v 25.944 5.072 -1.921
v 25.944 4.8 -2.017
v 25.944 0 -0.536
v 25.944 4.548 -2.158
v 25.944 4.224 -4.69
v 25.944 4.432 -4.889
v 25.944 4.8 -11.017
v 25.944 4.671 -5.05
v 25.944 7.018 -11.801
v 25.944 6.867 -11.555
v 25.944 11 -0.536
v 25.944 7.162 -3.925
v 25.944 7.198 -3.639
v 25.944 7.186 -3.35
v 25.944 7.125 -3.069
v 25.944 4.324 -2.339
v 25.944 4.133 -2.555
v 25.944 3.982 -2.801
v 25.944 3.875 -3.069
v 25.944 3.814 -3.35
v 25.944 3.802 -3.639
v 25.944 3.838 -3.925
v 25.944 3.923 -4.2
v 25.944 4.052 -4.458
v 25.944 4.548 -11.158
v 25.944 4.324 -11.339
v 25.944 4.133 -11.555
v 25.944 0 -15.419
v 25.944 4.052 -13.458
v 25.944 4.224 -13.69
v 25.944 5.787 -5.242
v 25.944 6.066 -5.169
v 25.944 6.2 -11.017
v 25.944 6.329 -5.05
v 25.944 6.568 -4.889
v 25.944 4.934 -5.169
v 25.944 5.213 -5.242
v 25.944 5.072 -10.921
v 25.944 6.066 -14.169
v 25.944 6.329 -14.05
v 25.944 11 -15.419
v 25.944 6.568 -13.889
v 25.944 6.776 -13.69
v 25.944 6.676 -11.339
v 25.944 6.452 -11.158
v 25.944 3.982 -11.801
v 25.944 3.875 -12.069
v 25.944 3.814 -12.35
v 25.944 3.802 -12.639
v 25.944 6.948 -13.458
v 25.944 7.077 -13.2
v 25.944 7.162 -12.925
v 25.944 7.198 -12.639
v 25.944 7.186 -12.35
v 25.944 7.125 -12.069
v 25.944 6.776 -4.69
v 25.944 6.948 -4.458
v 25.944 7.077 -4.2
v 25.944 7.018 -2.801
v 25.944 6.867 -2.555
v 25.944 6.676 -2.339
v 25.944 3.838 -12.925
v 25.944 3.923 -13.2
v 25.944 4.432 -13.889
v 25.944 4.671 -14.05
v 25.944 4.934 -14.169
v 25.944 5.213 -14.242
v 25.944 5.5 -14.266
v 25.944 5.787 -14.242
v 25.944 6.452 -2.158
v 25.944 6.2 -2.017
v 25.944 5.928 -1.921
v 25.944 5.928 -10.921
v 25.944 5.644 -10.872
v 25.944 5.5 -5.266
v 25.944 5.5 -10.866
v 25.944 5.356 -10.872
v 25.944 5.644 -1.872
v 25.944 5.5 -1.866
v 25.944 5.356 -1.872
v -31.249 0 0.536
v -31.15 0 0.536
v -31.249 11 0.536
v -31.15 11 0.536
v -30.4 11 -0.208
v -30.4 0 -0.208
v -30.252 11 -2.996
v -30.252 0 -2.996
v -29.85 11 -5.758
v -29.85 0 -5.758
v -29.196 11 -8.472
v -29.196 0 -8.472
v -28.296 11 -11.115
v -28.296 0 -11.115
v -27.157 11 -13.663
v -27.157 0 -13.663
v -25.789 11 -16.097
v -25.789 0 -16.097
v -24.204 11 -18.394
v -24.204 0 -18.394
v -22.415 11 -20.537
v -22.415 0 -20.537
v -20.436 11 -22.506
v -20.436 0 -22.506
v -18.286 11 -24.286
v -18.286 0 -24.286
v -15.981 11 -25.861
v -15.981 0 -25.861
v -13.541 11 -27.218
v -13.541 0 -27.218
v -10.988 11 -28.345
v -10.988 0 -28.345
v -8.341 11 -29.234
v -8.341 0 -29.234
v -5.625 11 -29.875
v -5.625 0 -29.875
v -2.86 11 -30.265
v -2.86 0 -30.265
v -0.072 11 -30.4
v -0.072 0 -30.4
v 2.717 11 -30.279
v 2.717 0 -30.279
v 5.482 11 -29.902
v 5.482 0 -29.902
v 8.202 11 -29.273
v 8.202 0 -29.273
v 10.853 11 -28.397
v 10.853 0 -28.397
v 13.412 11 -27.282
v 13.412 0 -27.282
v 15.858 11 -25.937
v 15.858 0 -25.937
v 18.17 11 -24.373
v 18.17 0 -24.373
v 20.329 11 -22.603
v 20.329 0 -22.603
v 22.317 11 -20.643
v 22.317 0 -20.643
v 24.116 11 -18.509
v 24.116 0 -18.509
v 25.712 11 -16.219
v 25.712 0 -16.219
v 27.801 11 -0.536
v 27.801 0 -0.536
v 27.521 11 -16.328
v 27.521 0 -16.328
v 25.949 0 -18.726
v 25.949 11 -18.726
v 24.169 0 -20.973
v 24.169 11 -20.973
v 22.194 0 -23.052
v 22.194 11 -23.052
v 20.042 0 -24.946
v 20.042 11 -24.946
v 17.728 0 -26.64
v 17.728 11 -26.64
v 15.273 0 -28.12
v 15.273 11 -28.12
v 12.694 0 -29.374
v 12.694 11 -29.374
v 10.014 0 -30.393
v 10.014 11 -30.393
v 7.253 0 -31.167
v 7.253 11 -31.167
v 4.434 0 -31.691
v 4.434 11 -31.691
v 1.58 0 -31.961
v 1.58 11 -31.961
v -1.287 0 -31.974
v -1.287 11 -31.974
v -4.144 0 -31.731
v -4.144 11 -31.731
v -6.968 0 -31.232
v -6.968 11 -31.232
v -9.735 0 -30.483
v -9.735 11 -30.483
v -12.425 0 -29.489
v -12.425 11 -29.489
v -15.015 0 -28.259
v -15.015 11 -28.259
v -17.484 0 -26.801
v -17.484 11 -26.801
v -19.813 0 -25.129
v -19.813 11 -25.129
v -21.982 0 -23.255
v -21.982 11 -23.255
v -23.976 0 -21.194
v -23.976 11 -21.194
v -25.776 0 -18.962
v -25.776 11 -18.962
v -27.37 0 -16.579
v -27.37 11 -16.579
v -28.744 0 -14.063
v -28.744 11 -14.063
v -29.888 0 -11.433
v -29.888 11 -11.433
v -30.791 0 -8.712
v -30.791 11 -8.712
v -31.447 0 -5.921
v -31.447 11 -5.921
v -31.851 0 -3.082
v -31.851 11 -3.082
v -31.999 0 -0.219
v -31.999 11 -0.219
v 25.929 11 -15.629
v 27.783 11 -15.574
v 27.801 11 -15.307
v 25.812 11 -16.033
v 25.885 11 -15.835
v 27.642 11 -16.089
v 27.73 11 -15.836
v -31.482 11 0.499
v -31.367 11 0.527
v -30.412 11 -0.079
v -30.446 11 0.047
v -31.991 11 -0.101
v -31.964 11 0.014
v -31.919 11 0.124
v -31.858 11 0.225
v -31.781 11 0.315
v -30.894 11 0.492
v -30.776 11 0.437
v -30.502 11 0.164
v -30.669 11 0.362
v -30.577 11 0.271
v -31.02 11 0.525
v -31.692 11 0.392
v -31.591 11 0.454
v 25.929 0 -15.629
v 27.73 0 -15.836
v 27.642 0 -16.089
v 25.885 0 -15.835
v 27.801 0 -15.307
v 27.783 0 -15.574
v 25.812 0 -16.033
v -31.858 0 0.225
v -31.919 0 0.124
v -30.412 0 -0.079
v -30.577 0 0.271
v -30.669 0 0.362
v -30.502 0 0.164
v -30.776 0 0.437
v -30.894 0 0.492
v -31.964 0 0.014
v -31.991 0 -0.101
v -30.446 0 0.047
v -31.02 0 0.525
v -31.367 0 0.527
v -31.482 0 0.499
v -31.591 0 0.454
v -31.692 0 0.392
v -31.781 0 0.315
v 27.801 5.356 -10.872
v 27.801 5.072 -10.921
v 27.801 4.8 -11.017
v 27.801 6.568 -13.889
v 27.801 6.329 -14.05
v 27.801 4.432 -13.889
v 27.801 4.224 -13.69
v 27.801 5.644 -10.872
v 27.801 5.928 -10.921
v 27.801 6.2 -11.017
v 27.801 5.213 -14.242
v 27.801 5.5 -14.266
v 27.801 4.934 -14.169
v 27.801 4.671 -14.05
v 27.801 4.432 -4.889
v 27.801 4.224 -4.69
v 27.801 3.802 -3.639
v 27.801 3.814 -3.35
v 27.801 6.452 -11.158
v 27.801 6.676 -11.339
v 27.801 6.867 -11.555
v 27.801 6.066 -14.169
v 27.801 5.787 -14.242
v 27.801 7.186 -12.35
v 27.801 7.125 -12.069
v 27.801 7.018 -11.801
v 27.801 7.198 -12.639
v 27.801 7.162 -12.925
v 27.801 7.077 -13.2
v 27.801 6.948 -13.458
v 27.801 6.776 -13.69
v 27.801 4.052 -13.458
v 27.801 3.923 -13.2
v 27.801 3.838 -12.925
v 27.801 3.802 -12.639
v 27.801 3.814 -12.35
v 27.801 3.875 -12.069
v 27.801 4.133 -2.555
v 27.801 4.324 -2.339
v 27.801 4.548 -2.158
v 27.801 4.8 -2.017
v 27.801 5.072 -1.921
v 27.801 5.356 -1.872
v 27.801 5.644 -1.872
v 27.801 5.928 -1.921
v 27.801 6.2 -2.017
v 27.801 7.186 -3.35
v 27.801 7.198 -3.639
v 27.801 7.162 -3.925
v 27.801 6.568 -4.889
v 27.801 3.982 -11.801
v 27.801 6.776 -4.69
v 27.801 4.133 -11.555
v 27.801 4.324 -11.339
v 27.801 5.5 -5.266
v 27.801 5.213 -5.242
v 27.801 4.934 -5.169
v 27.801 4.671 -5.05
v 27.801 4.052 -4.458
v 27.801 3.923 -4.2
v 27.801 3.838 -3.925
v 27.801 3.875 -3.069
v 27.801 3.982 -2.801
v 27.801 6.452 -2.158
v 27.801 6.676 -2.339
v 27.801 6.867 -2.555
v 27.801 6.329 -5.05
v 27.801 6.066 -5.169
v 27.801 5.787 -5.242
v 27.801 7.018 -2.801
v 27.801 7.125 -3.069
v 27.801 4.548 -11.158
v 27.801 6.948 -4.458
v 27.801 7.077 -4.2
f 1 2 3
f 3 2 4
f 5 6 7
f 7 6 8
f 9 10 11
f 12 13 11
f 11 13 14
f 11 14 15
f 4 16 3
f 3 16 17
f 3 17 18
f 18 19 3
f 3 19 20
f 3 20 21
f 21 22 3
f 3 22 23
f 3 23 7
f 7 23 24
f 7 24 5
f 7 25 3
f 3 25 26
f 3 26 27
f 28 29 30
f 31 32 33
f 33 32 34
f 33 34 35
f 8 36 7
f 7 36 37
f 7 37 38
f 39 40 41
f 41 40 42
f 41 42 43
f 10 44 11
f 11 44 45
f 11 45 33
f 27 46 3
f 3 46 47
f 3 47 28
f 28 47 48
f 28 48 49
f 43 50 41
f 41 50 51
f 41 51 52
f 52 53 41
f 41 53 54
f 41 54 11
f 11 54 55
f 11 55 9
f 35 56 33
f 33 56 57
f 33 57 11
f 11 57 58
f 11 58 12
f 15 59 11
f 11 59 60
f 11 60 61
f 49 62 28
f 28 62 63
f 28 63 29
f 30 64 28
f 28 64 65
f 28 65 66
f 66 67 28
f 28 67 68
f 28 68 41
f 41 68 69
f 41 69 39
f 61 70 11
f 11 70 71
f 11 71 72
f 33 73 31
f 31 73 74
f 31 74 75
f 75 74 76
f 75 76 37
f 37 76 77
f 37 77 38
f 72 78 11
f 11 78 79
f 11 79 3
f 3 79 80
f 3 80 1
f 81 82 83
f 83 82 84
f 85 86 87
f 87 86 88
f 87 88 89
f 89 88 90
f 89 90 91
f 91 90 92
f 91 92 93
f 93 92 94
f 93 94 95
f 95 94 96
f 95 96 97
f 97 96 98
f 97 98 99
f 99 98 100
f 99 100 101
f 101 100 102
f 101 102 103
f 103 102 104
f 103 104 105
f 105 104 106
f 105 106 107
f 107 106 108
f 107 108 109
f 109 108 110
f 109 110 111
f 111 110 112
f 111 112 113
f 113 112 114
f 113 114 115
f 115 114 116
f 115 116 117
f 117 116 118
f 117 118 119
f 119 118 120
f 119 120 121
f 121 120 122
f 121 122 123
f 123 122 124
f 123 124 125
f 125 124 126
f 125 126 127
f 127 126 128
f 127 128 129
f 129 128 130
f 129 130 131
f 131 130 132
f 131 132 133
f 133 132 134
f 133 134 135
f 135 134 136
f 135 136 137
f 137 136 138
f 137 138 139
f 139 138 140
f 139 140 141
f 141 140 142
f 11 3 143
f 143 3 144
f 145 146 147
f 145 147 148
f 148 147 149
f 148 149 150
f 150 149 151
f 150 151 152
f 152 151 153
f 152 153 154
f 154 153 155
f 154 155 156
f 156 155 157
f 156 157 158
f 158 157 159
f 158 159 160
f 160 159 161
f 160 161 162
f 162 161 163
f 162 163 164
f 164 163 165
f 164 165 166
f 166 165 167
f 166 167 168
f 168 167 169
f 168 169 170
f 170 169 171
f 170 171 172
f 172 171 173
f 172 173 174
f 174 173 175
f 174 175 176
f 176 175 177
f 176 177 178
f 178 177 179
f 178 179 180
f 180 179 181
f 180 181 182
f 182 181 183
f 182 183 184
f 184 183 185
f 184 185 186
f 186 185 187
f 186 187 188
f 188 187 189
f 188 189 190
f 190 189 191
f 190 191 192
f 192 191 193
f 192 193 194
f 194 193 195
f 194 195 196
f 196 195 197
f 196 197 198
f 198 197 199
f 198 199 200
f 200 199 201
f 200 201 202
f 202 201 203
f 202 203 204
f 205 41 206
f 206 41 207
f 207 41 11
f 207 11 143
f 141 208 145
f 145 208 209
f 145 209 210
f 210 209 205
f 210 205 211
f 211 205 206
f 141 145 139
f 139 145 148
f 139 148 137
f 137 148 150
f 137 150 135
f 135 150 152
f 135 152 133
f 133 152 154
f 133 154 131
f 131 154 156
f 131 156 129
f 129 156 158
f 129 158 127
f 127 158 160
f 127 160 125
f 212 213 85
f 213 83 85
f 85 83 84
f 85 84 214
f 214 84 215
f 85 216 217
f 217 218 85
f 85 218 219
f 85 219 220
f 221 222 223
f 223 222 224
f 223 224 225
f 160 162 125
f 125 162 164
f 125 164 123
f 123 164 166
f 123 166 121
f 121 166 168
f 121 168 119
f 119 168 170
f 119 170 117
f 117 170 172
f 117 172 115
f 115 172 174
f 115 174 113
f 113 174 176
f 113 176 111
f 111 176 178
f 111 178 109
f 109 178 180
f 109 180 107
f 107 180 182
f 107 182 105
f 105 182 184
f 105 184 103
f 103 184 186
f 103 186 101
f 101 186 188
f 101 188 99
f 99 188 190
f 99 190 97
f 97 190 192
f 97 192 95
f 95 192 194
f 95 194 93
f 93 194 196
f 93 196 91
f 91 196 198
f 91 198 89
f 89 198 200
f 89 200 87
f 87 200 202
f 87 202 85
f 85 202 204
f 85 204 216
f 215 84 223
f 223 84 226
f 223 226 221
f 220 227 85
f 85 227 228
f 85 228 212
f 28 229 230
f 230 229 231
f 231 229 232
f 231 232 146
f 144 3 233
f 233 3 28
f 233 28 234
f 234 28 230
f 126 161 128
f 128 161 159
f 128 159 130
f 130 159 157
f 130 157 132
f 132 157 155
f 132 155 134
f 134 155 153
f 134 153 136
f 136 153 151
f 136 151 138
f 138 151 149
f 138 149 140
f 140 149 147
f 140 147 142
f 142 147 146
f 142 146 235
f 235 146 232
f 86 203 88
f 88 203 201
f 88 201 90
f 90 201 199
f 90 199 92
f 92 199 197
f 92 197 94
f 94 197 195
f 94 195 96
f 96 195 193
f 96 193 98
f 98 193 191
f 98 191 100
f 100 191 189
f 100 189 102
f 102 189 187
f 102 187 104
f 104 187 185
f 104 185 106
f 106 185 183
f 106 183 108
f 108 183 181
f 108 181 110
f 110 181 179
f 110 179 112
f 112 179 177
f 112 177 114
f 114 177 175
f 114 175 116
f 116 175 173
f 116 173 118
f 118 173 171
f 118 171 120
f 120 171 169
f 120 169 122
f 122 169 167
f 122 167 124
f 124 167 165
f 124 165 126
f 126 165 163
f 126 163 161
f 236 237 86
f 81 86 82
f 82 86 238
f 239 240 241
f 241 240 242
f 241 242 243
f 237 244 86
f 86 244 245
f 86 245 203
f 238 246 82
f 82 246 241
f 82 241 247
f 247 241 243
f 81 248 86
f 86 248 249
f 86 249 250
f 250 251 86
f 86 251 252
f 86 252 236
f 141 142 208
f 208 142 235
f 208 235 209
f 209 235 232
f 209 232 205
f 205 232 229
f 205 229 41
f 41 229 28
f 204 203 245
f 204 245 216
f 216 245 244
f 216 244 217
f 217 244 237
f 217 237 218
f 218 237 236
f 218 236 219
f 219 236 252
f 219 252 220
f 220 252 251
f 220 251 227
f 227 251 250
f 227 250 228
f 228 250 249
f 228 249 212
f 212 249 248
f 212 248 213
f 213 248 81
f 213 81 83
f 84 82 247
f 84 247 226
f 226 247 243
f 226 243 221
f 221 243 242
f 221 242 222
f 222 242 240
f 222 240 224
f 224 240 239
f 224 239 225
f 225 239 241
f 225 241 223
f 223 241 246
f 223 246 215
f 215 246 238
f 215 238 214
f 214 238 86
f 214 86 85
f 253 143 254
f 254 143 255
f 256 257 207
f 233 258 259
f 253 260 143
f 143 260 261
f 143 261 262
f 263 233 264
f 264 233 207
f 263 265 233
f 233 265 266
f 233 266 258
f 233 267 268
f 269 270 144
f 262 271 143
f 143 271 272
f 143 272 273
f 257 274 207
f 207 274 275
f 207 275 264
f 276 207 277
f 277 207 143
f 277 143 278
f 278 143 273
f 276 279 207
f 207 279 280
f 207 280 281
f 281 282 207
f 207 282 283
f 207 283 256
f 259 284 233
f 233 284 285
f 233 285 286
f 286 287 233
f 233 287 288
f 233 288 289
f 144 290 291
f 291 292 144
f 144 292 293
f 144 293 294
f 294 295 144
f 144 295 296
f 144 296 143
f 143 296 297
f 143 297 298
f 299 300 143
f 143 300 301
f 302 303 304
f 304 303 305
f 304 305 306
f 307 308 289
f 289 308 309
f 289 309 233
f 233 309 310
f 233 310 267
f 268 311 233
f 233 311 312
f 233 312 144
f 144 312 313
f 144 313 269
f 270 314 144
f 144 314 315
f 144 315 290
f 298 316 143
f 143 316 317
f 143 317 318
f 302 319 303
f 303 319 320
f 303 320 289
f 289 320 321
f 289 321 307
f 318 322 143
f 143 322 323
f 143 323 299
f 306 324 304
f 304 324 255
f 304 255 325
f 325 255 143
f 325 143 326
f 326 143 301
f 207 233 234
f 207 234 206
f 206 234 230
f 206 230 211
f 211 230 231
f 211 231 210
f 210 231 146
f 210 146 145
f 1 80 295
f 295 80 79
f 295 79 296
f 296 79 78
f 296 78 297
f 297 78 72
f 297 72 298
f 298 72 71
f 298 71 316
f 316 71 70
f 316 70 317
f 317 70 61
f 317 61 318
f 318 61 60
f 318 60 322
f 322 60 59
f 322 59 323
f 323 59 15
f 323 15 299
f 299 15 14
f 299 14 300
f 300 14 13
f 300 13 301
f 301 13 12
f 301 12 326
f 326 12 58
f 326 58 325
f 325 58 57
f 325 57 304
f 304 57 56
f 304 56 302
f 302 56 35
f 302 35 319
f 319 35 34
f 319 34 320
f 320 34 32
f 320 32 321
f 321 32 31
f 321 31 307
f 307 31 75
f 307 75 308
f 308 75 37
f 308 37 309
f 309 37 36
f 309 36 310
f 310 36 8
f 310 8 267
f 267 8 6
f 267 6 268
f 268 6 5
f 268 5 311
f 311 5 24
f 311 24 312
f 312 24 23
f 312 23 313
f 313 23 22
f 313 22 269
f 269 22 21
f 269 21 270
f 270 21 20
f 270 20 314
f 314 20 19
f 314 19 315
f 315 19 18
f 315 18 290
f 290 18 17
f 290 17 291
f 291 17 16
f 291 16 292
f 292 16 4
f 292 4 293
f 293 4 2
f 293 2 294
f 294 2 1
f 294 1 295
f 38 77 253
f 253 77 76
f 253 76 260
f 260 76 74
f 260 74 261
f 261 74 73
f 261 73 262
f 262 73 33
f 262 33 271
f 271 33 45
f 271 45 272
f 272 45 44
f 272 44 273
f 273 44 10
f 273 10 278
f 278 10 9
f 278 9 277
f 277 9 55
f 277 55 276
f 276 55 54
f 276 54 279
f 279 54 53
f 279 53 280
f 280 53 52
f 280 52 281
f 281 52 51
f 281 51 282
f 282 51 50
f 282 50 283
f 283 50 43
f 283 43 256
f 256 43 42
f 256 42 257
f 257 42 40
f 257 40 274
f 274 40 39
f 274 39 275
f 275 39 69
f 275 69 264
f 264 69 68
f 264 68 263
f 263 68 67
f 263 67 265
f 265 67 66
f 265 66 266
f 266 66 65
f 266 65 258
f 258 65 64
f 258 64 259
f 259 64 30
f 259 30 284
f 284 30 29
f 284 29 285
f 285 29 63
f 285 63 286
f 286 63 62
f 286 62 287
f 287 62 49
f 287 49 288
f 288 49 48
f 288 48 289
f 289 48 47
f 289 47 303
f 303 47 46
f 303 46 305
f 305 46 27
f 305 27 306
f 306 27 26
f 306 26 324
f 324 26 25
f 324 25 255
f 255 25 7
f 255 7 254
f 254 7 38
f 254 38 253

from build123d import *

# Parameters (mm, degrees)
BOSS_EXTRUDE1_DEPTH       = 11
SKETCH2_W                 = 6.051968164
SKETCH2_H                 = 15.31
BOSS_EXTRUDE2_DEPTH       = 11
FILLET2_R                 = 1.5
FILLET4_R                 = 0.75
CUT_EXTRUDE4_REACH        = 48.572
SKETCH5_W                 = 4.194556819
SKETCH5_H                 = 15.31
FILLET6_R                 = 2
M3_CLEARANCE_HOLE1_REACH  = 70.71
M3_CLEARANCE_HOLE1_BORE_R = 1.7


with BuildPart() as part:
    # Sketch1 → Boss-Extrude1 (new body)
    with BuildSketch(Plane(origin=(0, 0, 0), x_dir=(1, 0, 0), z_dir=(0, 1, 0))):
        with BuildLine():
            Line((-31.995504557, -0.536365667), (-30.395504557, -0.536365667))
            ThreePointArc((-30.395504557, -0.536365667), (-0.536365667, 30.395504557), (30.395504557, 0.536365667))
            Line((30.395504557, 0.536365667), (31.995504557, 0.536365667))
            ThreePointArc((31.995504557, 0.536365667), (-0.536365667, 31.995504557), (-31.995504557, -0.536365667))
        make_face()
    extrude(amount=BOSS_EXTRUDE1_DEPTH)

    # Sketch2 → Boss-Extrude2 (add, through all)
    with BuildSketch(Plane(origin=(0, 11, 0), x_dir=(1, 0, 0), z_dir=(0, 1, 0))):
        with Locations((28.969520475, 8.191365667)):
            Rectangle(SKETCH2_W, SKETCH2_H)
    extrude(amount=-BOSS_EXTRUDE2_DEPTH)

    # Fillet2
    fillet2_edges = [part.edges().sort_by_distance(p)[0] for p in [
        (25.943536393, 5.5, -15.846365667),
    ]]
    fillet(fillet2_edges, radius=FILLET2_R)

    # Fillet4
    fillet4_edges = [part.edges().sort_by_distance(p)[0] for p in [
        (-31.995504557, 5.5, 0.536365667),
        (-30.395504557, 5.5, 0.536365667),
    ]]
    fillet(fillet4_edges, radius=FILLET4_R)

    # Sketch5 → Cut-Extrude4 (cut, up to next)
    with BuildSketch(Plane(origin=(0, 11, 0), x_dir=(1, 0, 0), z_dir=(0, 1, 0)), mode=Mode.PRIVATE) as cut_extrude4_sk1:
        with Locations((29.898226148, 8.191365667)):
            Rectangle(SKETCH5_W, SKETCH5_H)
    cut_extrude4_tool1 = extrude(cut_extrude4_sk1.sketch, amount=-CUT_EXTRUDE4_REACH, mode=Mode.PRIVATE) & part.part
    add(cut_extrude4_tool1.solids().sort_by_distance((29.898226, 11, -8.191366))[0], mode=Mode.SUBTRACT)

    # Fillet6
    fillet6_edges = [part.edges().sort_by_distance(p)[0] for p in [
        (27.800947738, 5.5, -15.846365667),
    ]]
    fillet(fillet6_edges, radius=FILLET6_R)

    # M3 Clearance Hole1 bore → M3 Clearance Hole1 (cut, up to next)
    with BuildSketch(Plane(origin=(27.800947738, 0, 0), x_dir=(0, 0, -1), z_dir=(1, 0, 0)), mode=Mode.PRIVATE) as m3_clearance_hole1_sk1:
        with Locations((12.566365667, 5.5)):
            Circle(M3_CLEARANCE_HOLE1_BORE_R)
    m3_clearance_hole1_tool1 = extrude(m3_clearance_hole1_sk1.sketch, amount=-M3_CLEARANCE_HOLE1_REACH, mode=Mode.PRIVATE) & part.part
    # M3 Clearance Hole1 bore → M3 Clearance Hole1 (cut, up to next)
    with BuildSketch(Plane(origin=(27.800947738, 0, 0), x_dir=(0, 0, -1), z_dir=(1, 0, 0)), mode=Mode.PRIVATE) as m3_clearance_hole1_sk2:
        with Locations((3.566365667, 5.5)):
            Circle(M3_CLEARANCE_HOLE1_BORE_R)
    m3_clearance_hole1_tool2 = extrude(m3_clearance_hole1_sk2.sketch, amount=-M3_CLEARANCE_HOLE1_REACH, mode=Mode.PRIVATE) & part.part
    add(m3_clearance_hole1_tool1.solids().sort_by_distance((27.800948, 5.5, -12.566366))[0], mode=Mode.SUBTRACT)
    add(m3_clearance_hole1_tool2.solids().sort_by_distance((27.800948, 5.5, -3.566366))[0], mode=Mode.SUBTRACT)


solid = part.part
